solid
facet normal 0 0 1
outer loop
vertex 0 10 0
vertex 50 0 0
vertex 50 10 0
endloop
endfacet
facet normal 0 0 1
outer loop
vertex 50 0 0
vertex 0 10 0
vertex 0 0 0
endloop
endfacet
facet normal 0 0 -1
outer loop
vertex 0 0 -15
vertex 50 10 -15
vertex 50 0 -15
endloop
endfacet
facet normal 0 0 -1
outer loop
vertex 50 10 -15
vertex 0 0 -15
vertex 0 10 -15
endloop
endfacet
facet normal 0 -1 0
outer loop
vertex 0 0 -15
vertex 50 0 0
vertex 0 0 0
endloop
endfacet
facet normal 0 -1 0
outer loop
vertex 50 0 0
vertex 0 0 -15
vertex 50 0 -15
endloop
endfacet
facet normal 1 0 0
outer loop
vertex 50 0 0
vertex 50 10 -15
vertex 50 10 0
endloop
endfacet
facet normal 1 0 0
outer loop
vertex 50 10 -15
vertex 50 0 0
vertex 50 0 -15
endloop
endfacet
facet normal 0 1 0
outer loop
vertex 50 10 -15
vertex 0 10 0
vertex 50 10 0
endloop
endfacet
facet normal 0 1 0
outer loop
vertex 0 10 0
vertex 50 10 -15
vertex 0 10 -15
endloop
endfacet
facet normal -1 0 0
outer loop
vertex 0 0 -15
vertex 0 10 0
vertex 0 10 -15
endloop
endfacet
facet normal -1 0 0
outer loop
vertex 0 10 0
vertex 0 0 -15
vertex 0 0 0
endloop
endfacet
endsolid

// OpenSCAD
$fn = 200;

length = 50.0;
width = 10.0;
height = 15.0;

translate([0, 0, -height]) cube([length, width, height], circle = false);
